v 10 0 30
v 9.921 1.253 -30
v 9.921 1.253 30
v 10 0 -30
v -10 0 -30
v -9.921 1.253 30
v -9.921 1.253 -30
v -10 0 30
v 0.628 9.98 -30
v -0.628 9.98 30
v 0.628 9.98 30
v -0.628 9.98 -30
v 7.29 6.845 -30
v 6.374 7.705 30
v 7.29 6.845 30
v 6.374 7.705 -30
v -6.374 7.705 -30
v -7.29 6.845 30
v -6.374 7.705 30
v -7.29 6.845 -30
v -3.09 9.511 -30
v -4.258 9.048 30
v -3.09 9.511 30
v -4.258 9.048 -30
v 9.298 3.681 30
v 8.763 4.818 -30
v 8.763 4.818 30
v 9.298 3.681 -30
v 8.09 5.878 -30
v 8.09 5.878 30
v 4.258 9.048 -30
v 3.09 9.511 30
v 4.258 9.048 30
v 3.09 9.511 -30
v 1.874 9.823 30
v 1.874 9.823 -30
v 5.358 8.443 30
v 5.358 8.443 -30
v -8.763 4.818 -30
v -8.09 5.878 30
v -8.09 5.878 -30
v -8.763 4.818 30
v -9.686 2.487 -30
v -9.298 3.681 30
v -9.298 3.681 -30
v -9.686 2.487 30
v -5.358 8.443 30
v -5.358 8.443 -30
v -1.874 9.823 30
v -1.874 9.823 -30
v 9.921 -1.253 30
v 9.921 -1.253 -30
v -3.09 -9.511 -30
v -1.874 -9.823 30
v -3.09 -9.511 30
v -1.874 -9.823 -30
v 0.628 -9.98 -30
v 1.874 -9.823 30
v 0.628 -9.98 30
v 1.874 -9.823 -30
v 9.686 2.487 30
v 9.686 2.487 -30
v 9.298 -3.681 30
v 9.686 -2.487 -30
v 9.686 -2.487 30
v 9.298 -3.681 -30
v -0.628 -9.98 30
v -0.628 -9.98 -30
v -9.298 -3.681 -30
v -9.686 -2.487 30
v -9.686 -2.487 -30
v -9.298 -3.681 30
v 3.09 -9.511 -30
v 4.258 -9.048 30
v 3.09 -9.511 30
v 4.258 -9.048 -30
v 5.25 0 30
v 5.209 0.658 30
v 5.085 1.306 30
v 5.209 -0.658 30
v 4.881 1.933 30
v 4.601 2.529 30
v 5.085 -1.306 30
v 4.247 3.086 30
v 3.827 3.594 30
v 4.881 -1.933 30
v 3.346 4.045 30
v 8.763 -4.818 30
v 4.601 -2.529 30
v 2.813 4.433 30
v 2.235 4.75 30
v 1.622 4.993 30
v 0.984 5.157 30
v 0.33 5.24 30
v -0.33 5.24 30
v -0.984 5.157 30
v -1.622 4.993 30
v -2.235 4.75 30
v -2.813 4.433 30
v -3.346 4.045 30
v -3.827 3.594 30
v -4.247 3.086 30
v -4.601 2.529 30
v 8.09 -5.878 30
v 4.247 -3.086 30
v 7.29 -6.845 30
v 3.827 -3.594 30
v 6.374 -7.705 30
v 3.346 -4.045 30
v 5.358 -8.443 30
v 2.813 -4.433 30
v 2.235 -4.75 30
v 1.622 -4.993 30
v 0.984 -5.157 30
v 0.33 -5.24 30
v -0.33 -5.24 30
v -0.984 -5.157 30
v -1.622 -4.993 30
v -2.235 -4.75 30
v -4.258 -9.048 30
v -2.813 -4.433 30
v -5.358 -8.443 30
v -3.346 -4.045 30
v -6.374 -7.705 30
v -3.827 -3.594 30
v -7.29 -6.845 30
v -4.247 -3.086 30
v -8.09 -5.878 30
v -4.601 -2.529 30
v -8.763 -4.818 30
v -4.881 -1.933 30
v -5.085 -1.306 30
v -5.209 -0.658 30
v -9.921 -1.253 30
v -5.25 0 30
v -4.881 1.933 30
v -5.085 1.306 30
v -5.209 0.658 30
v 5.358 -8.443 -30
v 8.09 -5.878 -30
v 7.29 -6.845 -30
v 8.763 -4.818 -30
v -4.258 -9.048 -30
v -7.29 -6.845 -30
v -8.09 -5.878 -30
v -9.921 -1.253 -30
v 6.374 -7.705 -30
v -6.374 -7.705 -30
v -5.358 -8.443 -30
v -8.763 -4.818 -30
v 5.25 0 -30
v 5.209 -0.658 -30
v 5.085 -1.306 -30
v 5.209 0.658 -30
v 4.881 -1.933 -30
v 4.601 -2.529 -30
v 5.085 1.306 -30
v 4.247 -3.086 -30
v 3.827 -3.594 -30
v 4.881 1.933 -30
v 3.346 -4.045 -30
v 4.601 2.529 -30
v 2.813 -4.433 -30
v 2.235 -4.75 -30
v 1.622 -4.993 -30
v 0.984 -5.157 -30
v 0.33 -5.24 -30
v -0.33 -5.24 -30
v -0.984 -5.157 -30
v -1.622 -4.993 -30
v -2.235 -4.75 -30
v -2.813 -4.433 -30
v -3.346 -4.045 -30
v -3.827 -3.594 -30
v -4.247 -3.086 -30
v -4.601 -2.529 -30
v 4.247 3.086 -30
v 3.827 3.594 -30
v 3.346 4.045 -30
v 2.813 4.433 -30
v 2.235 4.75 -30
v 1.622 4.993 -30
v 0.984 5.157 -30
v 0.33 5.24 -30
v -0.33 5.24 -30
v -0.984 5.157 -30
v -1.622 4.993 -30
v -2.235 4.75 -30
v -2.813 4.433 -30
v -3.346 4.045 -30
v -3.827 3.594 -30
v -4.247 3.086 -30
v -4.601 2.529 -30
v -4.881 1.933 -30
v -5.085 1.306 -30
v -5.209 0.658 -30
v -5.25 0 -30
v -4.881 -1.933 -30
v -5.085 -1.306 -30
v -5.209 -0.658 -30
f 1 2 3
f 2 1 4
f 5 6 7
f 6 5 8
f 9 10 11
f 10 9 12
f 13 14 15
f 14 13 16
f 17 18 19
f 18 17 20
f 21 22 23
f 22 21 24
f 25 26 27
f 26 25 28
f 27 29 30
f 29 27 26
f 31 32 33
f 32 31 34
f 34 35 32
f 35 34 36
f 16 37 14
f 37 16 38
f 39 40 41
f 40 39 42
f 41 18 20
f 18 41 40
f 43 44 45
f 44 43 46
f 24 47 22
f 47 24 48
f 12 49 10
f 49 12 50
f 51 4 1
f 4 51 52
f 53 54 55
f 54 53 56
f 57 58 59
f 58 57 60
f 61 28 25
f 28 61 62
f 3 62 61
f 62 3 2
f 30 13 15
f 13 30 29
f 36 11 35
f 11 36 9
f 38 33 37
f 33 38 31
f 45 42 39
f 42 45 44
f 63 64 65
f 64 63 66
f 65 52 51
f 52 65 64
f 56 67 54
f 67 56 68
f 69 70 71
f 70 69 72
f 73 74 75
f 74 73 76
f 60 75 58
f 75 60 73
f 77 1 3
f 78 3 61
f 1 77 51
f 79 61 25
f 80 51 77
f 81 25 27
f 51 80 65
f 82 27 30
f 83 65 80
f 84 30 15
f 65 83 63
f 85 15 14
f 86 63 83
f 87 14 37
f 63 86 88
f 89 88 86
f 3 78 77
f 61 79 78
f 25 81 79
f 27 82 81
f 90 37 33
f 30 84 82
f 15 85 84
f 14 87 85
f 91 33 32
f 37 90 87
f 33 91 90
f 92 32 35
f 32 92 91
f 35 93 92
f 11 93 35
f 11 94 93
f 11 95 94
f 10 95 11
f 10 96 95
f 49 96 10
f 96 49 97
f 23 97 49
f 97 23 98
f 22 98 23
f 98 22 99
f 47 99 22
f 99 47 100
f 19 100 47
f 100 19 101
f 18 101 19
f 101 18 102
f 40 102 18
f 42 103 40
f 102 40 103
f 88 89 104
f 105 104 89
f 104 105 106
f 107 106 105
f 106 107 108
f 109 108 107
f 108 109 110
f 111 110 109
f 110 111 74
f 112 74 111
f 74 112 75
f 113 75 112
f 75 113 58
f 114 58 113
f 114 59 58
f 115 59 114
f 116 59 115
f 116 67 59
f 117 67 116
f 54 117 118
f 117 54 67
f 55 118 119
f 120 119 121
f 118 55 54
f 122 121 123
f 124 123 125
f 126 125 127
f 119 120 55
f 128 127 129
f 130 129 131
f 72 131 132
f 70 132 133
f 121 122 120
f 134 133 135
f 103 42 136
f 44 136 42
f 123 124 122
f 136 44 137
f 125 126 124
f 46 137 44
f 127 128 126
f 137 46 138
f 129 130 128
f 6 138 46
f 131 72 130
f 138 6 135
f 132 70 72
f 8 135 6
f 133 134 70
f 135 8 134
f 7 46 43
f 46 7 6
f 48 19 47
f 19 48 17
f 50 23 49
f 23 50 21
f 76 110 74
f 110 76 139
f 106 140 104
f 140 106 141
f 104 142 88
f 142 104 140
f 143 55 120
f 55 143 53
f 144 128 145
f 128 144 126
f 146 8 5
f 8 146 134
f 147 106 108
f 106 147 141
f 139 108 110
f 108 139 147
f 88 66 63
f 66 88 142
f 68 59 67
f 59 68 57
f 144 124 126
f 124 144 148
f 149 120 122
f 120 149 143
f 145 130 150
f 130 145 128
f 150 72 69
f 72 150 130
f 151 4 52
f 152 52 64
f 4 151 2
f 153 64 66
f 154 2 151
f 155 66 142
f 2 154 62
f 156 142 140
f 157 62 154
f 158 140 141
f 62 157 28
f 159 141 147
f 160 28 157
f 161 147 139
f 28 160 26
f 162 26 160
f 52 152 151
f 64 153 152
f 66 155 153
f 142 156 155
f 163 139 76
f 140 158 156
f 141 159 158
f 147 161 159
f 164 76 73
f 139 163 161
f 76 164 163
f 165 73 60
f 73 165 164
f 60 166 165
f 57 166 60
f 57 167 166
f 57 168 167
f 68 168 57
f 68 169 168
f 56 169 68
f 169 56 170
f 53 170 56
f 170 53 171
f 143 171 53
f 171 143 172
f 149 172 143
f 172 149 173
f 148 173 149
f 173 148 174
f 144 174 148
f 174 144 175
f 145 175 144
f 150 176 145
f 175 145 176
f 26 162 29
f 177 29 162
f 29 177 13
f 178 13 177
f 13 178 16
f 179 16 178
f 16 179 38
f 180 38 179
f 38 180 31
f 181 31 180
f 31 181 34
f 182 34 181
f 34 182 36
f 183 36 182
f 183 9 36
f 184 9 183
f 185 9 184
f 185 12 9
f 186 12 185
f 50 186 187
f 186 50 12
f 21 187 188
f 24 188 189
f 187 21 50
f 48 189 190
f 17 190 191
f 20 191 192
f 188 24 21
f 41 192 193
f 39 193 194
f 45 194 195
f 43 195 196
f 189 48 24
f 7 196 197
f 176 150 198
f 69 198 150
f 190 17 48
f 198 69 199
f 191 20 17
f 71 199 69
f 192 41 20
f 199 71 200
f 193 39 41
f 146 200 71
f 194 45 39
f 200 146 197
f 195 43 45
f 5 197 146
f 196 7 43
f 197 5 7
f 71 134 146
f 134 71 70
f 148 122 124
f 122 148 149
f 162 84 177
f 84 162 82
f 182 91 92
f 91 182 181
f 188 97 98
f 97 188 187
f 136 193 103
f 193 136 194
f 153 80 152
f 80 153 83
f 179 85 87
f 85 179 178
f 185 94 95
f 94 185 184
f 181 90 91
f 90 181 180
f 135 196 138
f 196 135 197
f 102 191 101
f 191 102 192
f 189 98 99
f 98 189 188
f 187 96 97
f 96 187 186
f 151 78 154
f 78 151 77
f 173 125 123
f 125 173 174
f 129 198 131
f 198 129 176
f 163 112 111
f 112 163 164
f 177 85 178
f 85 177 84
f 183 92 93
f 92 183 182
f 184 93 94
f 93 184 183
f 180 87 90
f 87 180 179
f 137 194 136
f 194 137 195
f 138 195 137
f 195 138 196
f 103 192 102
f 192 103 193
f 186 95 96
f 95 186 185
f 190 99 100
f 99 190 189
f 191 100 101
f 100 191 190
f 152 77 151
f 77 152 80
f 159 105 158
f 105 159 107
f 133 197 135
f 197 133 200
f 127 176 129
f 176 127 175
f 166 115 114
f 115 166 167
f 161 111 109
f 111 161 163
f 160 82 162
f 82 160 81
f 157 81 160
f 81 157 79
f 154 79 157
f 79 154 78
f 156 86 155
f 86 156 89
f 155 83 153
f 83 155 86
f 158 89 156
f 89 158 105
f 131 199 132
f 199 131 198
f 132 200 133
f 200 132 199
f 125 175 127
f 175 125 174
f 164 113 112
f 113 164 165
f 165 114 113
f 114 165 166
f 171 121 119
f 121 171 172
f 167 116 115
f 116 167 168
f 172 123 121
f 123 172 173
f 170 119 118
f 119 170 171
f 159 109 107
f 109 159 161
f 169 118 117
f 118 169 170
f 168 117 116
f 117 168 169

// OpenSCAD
$fn = 50;


difference() {
	union() {
		translate(v = [0, 0, -30.0000000000]) {
			cylinder(h = 60, r = 10.0000000000);
		}
	}
	union() {
		translate(v = [0, 0, -100.0000000000]) {
			cylinder(h = 200, r = 5.2500000000);
		}
	}
}
